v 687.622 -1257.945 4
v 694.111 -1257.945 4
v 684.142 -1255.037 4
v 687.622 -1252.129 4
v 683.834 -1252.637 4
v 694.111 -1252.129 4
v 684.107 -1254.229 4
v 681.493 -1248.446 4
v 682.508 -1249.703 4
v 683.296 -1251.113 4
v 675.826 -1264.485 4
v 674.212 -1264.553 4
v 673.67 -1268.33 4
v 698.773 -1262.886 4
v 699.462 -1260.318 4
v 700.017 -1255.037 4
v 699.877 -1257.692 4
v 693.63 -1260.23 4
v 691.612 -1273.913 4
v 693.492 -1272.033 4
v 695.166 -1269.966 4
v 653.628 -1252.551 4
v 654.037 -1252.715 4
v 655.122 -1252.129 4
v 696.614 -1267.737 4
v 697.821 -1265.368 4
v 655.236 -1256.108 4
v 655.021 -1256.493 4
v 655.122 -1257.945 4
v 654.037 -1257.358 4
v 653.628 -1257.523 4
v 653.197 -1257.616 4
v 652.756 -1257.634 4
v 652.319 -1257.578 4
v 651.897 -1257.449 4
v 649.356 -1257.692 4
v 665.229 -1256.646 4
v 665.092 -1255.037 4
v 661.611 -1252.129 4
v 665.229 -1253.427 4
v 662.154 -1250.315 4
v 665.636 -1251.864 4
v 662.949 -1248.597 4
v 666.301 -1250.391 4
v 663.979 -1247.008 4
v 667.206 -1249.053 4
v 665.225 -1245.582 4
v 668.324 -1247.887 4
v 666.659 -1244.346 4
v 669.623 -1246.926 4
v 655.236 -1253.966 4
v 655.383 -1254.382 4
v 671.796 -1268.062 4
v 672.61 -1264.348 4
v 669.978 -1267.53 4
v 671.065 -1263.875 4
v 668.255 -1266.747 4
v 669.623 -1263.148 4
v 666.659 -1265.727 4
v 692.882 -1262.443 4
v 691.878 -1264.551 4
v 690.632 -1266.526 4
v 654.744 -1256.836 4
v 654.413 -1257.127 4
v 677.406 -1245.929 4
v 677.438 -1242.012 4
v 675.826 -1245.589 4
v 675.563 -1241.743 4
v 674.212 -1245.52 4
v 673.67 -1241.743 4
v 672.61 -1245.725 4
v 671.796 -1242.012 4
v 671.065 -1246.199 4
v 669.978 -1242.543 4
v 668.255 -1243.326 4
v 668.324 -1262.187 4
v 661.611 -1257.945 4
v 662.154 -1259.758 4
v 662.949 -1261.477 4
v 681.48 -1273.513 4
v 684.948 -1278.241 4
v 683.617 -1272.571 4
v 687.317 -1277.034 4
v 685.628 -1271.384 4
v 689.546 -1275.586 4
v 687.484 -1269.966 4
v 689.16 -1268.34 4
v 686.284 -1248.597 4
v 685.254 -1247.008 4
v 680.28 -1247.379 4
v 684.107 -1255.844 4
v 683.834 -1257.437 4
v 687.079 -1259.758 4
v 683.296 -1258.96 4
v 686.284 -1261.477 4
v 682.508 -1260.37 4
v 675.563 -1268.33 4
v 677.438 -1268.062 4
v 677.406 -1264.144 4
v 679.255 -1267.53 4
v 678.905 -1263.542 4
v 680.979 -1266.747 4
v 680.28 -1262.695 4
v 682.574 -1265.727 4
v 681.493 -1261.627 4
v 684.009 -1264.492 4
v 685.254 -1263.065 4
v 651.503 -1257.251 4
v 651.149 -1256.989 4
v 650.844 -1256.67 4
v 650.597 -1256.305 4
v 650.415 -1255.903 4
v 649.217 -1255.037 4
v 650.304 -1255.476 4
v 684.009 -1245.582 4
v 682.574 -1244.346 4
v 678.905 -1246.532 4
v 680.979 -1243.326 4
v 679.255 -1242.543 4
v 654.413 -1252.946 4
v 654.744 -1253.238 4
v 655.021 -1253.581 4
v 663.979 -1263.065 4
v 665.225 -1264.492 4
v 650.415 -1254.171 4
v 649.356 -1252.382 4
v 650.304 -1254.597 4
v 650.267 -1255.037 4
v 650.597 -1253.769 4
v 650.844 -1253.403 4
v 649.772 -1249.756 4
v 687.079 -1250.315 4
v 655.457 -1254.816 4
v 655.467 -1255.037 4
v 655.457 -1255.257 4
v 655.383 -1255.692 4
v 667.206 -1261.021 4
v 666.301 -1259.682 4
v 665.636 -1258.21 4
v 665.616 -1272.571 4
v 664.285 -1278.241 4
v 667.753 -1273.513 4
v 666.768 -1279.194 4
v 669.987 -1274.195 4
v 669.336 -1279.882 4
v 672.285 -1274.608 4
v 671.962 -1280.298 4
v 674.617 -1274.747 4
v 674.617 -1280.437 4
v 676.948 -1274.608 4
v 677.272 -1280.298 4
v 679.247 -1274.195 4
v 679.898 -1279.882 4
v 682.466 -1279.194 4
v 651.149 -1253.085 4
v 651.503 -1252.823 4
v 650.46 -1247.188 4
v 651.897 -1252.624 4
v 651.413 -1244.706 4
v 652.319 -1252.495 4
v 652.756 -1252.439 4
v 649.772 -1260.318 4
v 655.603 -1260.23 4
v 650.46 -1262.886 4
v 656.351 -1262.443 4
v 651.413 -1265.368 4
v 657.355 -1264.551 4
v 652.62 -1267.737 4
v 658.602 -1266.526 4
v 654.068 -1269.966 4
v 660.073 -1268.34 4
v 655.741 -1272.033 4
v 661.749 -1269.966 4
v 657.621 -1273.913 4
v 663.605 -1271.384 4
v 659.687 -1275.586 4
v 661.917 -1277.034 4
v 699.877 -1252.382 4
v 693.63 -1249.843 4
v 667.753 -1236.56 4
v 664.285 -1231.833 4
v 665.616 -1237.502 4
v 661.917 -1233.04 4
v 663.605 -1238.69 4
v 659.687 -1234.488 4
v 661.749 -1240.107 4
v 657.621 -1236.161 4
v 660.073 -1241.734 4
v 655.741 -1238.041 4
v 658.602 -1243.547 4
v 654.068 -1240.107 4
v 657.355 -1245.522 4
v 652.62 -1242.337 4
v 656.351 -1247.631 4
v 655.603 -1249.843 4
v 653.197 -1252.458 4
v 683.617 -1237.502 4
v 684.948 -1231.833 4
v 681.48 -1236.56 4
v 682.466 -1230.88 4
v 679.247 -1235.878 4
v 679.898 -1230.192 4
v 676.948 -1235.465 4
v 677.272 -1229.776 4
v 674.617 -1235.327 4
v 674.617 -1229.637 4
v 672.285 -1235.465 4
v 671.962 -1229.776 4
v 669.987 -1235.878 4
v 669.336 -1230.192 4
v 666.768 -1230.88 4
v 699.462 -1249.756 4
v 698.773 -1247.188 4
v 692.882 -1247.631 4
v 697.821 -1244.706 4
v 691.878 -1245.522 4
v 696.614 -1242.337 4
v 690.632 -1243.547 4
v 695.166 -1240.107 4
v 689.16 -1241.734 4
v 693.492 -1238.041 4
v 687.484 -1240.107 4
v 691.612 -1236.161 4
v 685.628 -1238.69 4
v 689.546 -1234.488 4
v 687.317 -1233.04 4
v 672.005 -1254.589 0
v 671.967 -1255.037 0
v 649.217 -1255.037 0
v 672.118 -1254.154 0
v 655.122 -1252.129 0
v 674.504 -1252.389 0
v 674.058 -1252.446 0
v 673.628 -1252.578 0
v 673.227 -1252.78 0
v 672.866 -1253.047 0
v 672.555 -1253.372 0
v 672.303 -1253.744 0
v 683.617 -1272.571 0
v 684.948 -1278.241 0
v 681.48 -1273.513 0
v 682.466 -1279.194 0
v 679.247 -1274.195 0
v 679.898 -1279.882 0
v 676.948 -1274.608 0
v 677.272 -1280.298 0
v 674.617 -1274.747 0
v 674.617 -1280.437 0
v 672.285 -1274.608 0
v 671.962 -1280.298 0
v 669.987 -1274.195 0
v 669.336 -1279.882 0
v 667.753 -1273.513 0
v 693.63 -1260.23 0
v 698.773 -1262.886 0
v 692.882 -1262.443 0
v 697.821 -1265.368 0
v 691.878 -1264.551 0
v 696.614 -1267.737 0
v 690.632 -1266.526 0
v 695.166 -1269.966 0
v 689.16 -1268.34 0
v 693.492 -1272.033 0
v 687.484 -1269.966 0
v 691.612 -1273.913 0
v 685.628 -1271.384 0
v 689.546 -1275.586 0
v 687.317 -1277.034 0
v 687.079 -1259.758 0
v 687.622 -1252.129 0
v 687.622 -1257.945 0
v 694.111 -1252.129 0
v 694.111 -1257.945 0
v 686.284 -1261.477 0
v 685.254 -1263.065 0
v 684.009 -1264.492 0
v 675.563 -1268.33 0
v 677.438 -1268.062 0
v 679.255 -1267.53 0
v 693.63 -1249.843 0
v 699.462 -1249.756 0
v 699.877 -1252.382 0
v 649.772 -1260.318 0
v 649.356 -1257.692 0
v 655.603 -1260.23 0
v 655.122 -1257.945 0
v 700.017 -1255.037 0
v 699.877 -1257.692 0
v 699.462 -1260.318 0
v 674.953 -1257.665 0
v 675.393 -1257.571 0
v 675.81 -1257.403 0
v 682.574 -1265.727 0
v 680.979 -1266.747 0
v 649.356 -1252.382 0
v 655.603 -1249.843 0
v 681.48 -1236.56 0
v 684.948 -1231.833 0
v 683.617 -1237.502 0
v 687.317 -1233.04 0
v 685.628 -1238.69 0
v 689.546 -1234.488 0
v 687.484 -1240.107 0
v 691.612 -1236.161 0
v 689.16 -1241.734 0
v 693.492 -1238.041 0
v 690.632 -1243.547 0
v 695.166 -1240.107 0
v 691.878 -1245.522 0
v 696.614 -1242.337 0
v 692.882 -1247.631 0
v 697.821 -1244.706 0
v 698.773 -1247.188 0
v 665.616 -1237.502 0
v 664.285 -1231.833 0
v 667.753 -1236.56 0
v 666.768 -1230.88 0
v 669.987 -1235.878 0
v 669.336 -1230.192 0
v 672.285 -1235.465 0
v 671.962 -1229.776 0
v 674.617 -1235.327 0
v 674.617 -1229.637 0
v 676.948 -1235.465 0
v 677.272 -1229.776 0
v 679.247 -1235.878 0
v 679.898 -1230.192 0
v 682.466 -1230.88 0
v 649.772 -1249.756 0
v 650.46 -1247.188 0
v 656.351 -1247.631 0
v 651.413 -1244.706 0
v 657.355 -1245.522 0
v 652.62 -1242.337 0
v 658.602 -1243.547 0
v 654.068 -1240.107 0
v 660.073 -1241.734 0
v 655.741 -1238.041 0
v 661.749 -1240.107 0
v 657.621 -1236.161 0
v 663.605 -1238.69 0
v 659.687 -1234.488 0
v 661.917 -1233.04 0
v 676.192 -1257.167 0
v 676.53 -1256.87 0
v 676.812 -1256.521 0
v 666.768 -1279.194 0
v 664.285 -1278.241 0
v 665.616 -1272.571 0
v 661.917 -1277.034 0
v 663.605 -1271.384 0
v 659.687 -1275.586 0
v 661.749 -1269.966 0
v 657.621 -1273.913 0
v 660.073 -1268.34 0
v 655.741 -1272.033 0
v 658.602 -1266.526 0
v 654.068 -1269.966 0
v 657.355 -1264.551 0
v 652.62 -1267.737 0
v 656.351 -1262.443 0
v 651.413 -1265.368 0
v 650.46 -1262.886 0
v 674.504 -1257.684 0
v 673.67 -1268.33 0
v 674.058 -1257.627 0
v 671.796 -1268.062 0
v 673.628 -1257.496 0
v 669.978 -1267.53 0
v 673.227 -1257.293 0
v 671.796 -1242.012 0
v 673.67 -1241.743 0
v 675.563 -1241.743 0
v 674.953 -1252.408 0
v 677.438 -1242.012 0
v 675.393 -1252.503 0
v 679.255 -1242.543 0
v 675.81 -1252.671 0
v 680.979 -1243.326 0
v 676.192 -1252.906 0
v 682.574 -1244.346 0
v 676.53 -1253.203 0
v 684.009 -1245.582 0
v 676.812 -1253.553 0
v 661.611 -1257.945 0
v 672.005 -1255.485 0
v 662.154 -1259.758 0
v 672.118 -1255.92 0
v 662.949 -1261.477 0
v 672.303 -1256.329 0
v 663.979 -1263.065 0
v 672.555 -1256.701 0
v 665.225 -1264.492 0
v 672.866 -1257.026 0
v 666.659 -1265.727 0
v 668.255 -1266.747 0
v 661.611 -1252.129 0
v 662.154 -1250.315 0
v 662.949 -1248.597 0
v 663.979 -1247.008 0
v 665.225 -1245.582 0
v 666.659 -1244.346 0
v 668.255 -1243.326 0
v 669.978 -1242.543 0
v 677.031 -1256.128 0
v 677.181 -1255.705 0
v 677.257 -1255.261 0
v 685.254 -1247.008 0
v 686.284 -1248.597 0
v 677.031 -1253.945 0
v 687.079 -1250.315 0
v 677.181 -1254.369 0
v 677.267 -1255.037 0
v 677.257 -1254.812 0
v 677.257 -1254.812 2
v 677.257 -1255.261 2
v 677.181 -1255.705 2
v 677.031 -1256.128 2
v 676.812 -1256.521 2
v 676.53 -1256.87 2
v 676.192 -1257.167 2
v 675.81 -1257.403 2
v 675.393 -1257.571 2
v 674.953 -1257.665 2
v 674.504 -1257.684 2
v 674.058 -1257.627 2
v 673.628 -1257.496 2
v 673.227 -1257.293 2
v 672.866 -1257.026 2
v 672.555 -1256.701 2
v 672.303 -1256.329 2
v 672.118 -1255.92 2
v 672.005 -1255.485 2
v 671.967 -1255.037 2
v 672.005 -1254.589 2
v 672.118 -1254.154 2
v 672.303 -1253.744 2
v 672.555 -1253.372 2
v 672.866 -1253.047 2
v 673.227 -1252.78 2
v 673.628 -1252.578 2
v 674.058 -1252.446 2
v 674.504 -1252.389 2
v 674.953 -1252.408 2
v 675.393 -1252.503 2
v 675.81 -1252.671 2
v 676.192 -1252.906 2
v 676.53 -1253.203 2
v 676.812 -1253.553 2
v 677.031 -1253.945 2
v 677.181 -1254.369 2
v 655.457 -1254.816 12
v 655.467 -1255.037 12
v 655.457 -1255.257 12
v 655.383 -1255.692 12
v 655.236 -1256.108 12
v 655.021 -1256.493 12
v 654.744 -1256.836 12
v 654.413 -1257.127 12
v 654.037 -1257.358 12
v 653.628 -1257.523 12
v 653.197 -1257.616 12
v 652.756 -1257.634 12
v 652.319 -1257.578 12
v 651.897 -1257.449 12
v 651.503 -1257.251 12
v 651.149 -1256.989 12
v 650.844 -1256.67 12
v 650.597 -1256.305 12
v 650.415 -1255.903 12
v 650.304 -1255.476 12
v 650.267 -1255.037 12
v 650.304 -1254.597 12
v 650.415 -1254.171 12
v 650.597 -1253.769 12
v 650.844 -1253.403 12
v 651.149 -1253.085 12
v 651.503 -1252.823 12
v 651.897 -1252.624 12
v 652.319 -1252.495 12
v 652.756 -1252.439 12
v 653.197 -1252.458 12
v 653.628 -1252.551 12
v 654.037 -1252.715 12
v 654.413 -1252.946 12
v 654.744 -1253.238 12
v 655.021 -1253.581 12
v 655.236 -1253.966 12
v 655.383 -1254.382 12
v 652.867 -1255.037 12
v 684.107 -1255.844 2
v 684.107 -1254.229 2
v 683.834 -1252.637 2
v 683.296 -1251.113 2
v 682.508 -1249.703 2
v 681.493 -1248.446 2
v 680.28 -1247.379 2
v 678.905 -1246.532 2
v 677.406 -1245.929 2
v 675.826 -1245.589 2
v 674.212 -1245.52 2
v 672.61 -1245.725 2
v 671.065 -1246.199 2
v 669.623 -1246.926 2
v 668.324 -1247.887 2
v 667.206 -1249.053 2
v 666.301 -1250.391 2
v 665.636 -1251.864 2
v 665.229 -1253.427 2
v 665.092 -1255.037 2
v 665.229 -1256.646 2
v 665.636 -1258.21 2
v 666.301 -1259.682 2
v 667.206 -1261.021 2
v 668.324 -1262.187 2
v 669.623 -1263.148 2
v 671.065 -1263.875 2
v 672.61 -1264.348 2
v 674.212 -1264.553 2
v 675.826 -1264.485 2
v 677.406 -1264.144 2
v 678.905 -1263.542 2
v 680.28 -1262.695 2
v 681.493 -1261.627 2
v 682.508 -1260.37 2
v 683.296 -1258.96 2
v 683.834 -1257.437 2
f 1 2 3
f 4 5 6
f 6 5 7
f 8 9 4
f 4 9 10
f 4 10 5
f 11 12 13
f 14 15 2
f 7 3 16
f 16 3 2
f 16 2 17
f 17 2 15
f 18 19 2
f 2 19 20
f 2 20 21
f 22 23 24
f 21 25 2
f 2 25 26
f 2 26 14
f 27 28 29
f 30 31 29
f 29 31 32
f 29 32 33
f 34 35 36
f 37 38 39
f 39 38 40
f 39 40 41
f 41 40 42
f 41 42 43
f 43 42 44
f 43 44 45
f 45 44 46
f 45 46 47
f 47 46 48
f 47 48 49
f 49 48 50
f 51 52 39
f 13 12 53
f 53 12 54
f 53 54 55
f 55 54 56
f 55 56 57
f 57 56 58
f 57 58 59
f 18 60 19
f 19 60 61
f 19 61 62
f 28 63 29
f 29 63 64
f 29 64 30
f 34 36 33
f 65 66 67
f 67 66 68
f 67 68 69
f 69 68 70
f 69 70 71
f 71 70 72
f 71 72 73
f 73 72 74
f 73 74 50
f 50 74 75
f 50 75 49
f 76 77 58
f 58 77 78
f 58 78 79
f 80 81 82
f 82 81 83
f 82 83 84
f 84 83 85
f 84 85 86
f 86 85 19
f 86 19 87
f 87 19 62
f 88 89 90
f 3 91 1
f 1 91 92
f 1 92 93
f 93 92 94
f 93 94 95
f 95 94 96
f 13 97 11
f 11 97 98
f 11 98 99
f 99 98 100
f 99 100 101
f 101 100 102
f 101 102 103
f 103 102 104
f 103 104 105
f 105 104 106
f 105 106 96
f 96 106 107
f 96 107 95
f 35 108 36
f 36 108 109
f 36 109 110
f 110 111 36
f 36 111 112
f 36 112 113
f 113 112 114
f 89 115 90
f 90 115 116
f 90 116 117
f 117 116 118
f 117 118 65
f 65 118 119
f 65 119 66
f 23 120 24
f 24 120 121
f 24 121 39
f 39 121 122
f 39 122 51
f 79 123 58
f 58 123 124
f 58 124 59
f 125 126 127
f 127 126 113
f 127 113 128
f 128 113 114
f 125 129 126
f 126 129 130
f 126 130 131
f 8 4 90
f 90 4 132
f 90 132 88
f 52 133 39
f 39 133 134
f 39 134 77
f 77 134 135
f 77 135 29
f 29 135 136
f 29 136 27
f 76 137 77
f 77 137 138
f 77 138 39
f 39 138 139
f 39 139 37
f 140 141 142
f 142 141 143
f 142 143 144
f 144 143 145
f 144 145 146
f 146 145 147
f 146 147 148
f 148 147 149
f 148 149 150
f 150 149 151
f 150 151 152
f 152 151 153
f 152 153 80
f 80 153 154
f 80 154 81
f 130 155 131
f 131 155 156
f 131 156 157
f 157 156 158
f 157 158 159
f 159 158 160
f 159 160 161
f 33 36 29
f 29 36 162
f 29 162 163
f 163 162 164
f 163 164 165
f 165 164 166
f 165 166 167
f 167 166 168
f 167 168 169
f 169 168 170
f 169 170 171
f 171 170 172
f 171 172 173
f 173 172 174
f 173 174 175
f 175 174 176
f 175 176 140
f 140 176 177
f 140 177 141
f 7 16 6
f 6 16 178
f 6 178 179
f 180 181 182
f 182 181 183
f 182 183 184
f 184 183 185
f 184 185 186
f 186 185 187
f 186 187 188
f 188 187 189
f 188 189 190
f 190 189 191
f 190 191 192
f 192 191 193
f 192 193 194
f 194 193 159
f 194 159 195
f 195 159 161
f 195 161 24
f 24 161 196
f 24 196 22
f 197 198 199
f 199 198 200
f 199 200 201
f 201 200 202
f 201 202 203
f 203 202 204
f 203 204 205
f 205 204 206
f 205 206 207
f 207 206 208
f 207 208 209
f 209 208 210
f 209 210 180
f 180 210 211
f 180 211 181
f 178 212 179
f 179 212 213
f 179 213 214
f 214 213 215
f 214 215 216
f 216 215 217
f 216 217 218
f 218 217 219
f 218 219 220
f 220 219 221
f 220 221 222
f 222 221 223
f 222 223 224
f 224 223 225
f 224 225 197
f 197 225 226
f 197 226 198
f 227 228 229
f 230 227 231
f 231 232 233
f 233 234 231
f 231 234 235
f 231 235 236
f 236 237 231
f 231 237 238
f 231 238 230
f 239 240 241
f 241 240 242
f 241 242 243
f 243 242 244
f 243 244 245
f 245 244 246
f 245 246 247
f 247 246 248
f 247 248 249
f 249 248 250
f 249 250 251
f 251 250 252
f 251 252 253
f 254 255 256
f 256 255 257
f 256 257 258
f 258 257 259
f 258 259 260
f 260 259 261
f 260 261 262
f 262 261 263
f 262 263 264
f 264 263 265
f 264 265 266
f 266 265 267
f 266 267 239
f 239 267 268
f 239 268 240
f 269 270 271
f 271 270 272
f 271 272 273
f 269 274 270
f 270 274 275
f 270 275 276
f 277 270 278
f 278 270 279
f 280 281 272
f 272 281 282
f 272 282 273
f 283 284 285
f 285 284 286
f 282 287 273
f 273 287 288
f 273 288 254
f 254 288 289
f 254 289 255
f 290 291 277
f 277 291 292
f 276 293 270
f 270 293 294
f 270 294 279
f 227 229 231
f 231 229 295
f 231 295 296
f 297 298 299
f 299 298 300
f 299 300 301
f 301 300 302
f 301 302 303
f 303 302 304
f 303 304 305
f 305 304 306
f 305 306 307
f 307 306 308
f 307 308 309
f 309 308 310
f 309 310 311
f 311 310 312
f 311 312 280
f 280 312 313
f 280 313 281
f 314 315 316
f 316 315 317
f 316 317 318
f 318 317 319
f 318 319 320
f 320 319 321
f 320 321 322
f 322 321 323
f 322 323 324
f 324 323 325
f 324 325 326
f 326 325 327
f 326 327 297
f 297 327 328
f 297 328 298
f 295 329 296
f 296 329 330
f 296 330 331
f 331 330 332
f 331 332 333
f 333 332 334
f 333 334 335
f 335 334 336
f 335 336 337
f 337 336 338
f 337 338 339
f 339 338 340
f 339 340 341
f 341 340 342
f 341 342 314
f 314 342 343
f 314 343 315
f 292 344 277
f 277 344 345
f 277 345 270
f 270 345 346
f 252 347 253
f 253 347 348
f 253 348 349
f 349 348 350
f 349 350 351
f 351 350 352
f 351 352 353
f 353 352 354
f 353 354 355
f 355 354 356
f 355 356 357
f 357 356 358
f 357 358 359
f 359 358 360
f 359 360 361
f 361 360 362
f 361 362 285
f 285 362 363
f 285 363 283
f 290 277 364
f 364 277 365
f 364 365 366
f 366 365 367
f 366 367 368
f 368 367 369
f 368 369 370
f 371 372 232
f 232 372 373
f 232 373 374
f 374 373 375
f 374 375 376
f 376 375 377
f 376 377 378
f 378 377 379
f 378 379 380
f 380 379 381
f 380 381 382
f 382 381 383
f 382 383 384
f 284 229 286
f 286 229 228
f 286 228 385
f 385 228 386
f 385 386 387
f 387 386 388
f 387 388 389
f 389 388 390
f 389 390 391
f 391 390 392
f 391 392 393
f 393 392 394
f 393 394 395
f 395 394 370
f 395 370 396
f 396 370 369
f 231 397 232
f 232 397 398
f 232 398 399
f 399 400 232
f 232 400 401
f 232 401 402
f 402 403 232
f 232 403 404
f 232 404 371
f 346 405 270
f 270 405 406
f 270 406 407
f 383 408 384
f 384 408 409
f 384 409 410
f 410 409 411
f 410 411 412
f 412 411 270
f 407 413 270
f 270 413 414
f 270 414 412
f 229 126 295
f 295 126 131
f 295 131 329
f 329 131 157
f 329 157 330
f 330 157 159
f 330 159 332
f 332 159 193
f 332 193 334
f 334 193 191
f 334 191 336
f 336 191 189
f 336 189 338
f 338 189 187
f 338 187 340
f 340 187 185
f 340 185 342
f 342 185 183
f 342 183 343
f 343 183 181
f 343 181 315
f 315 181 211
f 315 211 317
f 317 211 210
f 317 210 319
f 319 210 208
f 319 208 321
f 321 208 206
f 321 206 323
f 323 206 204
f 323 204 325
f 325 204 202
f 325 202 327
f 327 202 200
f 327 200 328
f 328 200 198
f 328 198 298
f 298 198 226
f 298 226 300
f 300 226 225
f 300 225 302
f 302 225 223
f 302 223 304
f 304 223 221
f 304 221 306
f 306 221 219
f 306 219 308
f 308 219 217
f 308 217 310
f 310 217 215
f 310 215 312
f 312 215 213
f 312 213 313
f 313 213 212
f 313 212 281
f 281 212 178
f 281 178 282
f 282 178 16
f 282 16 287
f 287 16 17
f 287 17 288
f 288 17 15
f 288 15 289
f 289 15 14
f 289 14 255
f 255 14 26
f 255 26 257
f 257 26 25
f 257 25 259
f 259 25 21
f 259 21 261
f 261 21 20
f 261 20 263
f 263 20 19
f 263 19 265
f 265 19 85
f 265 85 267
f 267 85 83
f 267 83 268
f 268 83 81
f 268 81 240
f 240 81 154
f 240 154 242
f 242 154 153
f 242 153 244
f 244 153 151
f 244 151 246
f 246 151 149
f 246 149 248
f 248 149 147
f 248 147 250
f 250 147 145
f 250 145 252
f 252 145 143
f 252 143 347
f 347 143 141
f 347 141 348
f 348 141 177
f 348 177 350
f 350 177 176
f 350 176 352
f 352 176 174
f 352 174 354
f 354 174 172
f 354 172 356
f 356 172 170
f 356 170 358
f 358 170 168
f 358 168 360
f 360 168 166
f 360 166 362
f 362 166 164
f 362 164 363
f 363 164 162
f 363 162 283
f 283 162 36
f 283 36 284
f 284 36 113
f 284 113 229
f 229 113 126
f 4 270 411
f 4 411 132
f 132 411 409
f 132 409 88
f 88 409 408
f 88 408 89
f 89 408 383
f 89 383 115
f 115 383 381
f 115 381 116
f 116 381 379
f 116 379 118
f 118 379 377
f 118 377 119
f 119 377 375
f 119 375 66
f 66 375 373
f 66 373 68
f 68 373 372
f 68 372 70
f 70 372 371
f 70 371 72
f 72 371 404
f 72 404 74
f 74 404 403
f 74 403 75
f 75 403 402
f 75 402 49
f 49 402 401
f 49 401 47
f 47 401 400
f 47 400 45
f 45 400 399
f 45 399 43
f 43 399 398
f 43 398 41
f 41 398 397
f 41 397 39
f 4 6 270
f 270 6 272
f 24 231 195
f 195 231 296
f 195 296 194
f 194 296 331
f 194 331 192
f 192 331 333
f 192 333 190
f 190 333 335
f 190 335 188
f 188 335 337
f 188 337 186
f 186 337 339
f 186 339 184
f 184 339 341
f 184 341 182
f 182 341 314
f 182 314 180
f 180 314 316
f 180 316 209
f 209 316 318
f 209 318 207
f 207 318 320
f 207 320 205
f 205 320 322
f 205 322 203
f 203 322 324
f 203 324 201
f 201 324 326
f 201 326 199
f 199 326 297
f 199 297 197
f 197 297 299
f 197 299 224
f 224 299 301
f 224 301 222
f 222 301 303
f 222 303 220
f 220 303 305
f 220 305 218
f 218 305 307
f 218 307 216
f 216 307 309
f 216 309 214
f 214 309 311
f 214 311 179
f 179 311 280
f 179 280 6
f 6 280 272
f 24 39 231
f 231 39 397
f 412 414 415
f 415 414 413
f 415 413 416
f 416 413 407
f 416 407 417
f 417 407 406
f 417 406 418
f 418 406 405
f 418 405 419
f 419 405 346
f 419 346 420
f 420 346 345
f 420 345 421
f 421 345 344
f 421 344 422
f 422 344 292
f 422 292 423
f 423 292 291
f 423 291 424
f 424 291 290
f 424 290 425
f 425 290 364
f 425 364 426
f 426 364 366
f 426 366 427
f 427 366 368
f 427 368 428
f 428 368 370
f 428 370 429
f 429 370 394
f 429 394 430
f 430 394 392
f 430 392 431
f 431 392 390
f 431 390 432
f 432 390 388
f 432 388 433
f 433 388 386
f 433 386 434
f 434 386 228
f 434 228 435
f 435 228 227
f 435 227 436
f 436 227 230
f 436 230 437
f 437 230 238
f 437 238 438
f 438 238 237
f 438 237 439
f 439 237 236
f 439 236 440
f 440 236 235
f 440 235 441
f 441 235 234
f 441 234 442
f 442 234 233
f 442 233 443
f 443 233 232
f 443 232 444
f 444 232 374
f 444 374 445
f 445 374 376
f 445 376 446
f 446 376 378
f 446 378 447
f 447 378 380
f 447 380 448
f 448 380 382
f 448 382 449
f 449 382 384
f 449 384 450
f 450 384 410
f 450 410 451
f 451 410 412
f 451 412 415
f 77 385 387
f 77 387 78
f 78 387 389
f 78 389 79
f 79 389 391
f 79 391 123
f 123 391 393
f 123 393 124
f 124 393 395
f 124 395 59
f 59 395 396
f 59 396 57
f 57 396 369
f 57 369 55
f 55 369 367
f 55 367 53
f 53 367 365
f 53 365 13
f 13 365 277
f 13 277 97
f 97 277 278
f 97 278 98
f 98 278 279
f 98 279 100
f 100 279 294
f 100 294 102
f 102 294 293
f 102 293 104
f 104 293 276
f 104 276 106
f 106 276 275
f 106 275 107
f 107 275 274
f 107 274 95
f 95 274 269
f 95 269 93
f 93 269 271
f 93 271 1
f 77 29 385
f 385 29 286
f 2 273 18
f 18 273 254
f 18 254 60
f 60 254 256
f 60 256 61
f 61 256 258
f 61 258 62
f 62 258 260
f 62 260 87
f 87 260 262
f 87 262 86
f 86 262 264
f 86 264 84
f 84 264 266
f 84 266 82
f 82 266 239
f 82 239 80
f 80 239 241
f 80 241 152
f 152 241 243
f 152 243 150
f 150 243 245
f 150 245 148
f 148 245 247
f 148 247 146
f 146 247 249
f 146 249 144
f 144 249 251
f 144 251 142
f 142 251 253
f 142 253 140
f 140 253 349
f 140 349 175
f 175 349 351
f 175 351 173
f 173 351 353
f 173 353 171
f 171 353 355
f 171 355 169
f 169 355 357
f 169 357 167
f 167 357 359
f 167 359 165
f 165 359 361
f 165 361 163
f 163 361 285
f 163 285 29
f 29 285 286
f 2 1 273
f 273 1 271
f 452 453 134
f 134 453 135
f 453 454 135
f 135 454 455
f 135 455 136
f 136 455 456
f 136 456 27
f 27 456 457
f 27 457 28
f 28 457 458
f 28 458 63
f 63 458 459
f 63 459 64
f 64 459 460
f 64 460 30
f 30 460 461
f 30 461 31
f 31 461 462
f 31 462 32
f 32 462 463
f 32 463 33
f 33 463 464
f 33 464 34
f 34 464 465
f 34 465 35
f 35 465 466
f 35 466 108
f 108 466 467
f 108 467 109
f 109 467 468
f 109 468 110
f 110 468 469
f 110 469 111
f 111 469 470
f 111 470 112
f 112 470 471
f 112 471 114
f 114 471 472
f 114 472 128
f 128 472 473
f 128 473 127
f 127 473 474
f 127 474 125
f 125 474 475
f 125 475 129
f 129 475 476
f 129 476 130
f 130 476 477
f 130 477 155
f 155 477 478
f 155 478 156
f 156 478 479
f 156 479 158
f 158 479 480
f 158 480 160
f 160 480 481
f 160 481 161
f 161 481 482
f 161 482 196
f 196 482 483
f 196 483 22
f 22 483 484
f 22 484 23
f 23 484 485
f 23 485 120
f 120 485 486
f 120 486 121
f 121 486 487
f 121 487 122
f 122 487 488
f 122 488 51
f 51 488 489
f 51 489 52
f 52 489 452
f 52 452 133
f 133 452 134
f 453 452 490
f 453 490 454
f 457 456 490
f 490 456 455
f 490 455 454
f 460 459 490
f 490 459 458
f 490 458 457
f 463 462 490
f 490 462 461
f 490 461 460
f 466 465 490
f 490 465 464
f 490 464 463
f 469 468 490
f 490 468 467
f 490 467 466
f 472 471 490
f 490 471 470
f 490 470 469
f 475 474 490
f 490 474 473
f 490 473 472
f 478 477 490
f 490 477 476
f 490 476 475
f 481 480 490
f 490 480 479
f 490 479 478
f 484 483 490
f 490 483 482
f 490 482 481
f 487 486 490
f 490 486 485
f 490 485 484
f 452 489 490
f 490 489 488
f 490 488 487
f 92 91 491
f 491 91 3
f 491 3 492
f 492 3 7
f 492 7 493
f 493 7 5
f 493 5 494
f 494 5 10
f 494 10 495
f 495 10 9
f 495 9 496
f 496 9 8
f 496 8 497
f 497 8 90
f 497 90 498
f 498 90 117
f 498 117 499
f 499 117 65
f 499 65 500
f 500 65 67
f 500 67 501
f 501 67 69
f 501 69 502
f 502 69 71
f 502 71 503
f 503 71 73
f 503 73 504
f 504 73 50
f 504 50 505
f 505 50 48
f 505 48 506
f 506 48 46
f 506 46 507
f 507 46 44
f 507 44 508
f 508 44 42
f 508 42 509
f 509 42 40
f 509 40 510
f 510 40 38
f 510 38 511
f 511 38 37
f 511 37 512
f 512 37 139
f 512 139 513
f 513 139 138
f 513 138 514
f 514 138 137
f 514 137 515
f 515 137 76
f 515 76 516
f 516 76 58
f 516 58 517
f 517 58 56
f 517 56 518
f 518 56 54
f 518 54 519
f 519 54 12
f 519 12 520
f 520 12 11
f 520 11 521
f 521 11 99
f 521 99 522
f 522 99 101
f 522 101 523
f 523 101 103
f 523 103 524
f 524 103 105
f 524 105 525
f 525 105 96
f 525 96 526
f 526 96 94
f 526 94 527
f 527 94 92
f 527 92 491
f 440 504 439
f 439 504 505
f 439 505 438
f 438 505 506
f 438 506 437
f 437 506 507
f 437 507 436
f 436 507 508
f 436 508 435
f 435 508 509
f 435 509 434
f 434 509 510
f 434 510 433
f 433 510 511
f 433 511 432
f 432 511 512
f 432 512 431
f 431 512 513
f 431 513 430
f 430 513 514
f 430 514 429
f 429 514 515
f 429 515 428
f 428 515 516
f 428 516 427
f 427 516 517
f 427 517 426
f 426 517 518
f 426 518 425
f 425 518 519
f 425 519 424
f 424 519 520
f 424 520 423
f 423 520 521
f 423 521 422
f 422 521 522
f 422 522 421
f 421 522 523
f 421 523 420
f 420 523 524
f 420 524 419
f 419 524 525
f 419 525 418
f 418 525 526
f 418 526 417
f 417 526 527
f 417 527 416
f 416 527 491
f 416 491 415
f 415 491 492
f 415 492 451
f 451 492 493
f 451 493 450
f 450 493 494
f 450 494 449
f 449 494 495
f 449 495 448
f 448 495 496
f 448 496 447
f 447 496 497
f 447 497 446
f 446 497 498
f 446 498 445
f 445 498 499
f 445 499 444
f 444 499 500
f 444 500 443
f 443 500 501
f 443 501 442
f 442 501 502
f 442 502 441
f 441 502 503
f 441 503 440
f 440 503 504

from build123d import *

# Parameters (mm, degrees)
SKETCH1_R           = 25.4
SKETCH1_R_2         = 2.65
BOSS_EXTRUDE1_DEPTH = 4
SKETCH2_R           = 2.6
BOSS_EXTRUDE2_DEPTH = 8
CUT_EXTRUDE2_START  = -2
SKETCH3_R           = 9.525
CUT_EXTRUDE2_DEPTH  = 10


with BuildPart() as part:
    # Sketch1 → Boss-Extrude1 (new body)
    with BuildSketch(Plane.XY):
        with Locations((674.616590385, -1255.036738659)):
            Circle(SKETCH1_R)
        with Locations((674.616590385, -1255.036738659)):
            Circle(SKETCH1_R_2, mode=Mode.SUBTRACT)
        with BuildLine():
            Line((661.61077501, -1252.128812685), (655.122370806, -1252.128812685))
            ThreePointArc((655.122370806, -1252.128812685), (674.616590385, -1235.326826673), (694.110809965, -1252.128812685))
            Line((694.110809965, -1252.128812685), (687.622405761, -1252.128812685))
            ThreePointArc((687.622405761, -1252.128812685), (674.616590385, -1241.709801012), (661.61077501, -1252.128812685))
        make_face(mode=Mode.SUBTRACT)
        with BuildLine():
            Line((661.61077501, -1257.944664633), (655.122370806, -1257.944664633))
            ThreePointArc((655.122370806, -1257.944664633), (674.616590385, -1274.746650645), (694.110809965, -1257.944664633))
            Line((694.110809965, -1257.944664633), (687.622405761, -1257.944664633))
            ThreePointArc((687.622405761, -1257.944664633), (674.616590385, -1268.363676307), (661.61077501, -1257.944664633))
        make_face(mode=Mode.SUBTRACT)
    extrude(amount=BOSS_EXTRUDE1_DEPTH)

    # Sketch2 → Boss-Extrude2 (add)
    with BuildSketch(Plane.XY.offset(4)):
        with Locations((652.866731087, -1255.036738659)):
            Circle(SKETCH2_R)
    extrude(amount=BOSS_EXTRUDE2_DEPTH)

    # Sketch3 → Cut-Extrude2 (cut)
    with BuildSketch(Plane(origin=(0, 0, 0), x_dir=(-1, 0, 0), z_dir=(0, 0, -1)).offset(CUT_EXTRUDE2_START)):
        with Locations((-674.616590385, -1255.036738659)):
            Circle(SKETCH3_R)
    extrude(amount=-CUT_EXTRUDE2_DEPTH, mode=Mode.SUBTRACT)


solid = part.part
